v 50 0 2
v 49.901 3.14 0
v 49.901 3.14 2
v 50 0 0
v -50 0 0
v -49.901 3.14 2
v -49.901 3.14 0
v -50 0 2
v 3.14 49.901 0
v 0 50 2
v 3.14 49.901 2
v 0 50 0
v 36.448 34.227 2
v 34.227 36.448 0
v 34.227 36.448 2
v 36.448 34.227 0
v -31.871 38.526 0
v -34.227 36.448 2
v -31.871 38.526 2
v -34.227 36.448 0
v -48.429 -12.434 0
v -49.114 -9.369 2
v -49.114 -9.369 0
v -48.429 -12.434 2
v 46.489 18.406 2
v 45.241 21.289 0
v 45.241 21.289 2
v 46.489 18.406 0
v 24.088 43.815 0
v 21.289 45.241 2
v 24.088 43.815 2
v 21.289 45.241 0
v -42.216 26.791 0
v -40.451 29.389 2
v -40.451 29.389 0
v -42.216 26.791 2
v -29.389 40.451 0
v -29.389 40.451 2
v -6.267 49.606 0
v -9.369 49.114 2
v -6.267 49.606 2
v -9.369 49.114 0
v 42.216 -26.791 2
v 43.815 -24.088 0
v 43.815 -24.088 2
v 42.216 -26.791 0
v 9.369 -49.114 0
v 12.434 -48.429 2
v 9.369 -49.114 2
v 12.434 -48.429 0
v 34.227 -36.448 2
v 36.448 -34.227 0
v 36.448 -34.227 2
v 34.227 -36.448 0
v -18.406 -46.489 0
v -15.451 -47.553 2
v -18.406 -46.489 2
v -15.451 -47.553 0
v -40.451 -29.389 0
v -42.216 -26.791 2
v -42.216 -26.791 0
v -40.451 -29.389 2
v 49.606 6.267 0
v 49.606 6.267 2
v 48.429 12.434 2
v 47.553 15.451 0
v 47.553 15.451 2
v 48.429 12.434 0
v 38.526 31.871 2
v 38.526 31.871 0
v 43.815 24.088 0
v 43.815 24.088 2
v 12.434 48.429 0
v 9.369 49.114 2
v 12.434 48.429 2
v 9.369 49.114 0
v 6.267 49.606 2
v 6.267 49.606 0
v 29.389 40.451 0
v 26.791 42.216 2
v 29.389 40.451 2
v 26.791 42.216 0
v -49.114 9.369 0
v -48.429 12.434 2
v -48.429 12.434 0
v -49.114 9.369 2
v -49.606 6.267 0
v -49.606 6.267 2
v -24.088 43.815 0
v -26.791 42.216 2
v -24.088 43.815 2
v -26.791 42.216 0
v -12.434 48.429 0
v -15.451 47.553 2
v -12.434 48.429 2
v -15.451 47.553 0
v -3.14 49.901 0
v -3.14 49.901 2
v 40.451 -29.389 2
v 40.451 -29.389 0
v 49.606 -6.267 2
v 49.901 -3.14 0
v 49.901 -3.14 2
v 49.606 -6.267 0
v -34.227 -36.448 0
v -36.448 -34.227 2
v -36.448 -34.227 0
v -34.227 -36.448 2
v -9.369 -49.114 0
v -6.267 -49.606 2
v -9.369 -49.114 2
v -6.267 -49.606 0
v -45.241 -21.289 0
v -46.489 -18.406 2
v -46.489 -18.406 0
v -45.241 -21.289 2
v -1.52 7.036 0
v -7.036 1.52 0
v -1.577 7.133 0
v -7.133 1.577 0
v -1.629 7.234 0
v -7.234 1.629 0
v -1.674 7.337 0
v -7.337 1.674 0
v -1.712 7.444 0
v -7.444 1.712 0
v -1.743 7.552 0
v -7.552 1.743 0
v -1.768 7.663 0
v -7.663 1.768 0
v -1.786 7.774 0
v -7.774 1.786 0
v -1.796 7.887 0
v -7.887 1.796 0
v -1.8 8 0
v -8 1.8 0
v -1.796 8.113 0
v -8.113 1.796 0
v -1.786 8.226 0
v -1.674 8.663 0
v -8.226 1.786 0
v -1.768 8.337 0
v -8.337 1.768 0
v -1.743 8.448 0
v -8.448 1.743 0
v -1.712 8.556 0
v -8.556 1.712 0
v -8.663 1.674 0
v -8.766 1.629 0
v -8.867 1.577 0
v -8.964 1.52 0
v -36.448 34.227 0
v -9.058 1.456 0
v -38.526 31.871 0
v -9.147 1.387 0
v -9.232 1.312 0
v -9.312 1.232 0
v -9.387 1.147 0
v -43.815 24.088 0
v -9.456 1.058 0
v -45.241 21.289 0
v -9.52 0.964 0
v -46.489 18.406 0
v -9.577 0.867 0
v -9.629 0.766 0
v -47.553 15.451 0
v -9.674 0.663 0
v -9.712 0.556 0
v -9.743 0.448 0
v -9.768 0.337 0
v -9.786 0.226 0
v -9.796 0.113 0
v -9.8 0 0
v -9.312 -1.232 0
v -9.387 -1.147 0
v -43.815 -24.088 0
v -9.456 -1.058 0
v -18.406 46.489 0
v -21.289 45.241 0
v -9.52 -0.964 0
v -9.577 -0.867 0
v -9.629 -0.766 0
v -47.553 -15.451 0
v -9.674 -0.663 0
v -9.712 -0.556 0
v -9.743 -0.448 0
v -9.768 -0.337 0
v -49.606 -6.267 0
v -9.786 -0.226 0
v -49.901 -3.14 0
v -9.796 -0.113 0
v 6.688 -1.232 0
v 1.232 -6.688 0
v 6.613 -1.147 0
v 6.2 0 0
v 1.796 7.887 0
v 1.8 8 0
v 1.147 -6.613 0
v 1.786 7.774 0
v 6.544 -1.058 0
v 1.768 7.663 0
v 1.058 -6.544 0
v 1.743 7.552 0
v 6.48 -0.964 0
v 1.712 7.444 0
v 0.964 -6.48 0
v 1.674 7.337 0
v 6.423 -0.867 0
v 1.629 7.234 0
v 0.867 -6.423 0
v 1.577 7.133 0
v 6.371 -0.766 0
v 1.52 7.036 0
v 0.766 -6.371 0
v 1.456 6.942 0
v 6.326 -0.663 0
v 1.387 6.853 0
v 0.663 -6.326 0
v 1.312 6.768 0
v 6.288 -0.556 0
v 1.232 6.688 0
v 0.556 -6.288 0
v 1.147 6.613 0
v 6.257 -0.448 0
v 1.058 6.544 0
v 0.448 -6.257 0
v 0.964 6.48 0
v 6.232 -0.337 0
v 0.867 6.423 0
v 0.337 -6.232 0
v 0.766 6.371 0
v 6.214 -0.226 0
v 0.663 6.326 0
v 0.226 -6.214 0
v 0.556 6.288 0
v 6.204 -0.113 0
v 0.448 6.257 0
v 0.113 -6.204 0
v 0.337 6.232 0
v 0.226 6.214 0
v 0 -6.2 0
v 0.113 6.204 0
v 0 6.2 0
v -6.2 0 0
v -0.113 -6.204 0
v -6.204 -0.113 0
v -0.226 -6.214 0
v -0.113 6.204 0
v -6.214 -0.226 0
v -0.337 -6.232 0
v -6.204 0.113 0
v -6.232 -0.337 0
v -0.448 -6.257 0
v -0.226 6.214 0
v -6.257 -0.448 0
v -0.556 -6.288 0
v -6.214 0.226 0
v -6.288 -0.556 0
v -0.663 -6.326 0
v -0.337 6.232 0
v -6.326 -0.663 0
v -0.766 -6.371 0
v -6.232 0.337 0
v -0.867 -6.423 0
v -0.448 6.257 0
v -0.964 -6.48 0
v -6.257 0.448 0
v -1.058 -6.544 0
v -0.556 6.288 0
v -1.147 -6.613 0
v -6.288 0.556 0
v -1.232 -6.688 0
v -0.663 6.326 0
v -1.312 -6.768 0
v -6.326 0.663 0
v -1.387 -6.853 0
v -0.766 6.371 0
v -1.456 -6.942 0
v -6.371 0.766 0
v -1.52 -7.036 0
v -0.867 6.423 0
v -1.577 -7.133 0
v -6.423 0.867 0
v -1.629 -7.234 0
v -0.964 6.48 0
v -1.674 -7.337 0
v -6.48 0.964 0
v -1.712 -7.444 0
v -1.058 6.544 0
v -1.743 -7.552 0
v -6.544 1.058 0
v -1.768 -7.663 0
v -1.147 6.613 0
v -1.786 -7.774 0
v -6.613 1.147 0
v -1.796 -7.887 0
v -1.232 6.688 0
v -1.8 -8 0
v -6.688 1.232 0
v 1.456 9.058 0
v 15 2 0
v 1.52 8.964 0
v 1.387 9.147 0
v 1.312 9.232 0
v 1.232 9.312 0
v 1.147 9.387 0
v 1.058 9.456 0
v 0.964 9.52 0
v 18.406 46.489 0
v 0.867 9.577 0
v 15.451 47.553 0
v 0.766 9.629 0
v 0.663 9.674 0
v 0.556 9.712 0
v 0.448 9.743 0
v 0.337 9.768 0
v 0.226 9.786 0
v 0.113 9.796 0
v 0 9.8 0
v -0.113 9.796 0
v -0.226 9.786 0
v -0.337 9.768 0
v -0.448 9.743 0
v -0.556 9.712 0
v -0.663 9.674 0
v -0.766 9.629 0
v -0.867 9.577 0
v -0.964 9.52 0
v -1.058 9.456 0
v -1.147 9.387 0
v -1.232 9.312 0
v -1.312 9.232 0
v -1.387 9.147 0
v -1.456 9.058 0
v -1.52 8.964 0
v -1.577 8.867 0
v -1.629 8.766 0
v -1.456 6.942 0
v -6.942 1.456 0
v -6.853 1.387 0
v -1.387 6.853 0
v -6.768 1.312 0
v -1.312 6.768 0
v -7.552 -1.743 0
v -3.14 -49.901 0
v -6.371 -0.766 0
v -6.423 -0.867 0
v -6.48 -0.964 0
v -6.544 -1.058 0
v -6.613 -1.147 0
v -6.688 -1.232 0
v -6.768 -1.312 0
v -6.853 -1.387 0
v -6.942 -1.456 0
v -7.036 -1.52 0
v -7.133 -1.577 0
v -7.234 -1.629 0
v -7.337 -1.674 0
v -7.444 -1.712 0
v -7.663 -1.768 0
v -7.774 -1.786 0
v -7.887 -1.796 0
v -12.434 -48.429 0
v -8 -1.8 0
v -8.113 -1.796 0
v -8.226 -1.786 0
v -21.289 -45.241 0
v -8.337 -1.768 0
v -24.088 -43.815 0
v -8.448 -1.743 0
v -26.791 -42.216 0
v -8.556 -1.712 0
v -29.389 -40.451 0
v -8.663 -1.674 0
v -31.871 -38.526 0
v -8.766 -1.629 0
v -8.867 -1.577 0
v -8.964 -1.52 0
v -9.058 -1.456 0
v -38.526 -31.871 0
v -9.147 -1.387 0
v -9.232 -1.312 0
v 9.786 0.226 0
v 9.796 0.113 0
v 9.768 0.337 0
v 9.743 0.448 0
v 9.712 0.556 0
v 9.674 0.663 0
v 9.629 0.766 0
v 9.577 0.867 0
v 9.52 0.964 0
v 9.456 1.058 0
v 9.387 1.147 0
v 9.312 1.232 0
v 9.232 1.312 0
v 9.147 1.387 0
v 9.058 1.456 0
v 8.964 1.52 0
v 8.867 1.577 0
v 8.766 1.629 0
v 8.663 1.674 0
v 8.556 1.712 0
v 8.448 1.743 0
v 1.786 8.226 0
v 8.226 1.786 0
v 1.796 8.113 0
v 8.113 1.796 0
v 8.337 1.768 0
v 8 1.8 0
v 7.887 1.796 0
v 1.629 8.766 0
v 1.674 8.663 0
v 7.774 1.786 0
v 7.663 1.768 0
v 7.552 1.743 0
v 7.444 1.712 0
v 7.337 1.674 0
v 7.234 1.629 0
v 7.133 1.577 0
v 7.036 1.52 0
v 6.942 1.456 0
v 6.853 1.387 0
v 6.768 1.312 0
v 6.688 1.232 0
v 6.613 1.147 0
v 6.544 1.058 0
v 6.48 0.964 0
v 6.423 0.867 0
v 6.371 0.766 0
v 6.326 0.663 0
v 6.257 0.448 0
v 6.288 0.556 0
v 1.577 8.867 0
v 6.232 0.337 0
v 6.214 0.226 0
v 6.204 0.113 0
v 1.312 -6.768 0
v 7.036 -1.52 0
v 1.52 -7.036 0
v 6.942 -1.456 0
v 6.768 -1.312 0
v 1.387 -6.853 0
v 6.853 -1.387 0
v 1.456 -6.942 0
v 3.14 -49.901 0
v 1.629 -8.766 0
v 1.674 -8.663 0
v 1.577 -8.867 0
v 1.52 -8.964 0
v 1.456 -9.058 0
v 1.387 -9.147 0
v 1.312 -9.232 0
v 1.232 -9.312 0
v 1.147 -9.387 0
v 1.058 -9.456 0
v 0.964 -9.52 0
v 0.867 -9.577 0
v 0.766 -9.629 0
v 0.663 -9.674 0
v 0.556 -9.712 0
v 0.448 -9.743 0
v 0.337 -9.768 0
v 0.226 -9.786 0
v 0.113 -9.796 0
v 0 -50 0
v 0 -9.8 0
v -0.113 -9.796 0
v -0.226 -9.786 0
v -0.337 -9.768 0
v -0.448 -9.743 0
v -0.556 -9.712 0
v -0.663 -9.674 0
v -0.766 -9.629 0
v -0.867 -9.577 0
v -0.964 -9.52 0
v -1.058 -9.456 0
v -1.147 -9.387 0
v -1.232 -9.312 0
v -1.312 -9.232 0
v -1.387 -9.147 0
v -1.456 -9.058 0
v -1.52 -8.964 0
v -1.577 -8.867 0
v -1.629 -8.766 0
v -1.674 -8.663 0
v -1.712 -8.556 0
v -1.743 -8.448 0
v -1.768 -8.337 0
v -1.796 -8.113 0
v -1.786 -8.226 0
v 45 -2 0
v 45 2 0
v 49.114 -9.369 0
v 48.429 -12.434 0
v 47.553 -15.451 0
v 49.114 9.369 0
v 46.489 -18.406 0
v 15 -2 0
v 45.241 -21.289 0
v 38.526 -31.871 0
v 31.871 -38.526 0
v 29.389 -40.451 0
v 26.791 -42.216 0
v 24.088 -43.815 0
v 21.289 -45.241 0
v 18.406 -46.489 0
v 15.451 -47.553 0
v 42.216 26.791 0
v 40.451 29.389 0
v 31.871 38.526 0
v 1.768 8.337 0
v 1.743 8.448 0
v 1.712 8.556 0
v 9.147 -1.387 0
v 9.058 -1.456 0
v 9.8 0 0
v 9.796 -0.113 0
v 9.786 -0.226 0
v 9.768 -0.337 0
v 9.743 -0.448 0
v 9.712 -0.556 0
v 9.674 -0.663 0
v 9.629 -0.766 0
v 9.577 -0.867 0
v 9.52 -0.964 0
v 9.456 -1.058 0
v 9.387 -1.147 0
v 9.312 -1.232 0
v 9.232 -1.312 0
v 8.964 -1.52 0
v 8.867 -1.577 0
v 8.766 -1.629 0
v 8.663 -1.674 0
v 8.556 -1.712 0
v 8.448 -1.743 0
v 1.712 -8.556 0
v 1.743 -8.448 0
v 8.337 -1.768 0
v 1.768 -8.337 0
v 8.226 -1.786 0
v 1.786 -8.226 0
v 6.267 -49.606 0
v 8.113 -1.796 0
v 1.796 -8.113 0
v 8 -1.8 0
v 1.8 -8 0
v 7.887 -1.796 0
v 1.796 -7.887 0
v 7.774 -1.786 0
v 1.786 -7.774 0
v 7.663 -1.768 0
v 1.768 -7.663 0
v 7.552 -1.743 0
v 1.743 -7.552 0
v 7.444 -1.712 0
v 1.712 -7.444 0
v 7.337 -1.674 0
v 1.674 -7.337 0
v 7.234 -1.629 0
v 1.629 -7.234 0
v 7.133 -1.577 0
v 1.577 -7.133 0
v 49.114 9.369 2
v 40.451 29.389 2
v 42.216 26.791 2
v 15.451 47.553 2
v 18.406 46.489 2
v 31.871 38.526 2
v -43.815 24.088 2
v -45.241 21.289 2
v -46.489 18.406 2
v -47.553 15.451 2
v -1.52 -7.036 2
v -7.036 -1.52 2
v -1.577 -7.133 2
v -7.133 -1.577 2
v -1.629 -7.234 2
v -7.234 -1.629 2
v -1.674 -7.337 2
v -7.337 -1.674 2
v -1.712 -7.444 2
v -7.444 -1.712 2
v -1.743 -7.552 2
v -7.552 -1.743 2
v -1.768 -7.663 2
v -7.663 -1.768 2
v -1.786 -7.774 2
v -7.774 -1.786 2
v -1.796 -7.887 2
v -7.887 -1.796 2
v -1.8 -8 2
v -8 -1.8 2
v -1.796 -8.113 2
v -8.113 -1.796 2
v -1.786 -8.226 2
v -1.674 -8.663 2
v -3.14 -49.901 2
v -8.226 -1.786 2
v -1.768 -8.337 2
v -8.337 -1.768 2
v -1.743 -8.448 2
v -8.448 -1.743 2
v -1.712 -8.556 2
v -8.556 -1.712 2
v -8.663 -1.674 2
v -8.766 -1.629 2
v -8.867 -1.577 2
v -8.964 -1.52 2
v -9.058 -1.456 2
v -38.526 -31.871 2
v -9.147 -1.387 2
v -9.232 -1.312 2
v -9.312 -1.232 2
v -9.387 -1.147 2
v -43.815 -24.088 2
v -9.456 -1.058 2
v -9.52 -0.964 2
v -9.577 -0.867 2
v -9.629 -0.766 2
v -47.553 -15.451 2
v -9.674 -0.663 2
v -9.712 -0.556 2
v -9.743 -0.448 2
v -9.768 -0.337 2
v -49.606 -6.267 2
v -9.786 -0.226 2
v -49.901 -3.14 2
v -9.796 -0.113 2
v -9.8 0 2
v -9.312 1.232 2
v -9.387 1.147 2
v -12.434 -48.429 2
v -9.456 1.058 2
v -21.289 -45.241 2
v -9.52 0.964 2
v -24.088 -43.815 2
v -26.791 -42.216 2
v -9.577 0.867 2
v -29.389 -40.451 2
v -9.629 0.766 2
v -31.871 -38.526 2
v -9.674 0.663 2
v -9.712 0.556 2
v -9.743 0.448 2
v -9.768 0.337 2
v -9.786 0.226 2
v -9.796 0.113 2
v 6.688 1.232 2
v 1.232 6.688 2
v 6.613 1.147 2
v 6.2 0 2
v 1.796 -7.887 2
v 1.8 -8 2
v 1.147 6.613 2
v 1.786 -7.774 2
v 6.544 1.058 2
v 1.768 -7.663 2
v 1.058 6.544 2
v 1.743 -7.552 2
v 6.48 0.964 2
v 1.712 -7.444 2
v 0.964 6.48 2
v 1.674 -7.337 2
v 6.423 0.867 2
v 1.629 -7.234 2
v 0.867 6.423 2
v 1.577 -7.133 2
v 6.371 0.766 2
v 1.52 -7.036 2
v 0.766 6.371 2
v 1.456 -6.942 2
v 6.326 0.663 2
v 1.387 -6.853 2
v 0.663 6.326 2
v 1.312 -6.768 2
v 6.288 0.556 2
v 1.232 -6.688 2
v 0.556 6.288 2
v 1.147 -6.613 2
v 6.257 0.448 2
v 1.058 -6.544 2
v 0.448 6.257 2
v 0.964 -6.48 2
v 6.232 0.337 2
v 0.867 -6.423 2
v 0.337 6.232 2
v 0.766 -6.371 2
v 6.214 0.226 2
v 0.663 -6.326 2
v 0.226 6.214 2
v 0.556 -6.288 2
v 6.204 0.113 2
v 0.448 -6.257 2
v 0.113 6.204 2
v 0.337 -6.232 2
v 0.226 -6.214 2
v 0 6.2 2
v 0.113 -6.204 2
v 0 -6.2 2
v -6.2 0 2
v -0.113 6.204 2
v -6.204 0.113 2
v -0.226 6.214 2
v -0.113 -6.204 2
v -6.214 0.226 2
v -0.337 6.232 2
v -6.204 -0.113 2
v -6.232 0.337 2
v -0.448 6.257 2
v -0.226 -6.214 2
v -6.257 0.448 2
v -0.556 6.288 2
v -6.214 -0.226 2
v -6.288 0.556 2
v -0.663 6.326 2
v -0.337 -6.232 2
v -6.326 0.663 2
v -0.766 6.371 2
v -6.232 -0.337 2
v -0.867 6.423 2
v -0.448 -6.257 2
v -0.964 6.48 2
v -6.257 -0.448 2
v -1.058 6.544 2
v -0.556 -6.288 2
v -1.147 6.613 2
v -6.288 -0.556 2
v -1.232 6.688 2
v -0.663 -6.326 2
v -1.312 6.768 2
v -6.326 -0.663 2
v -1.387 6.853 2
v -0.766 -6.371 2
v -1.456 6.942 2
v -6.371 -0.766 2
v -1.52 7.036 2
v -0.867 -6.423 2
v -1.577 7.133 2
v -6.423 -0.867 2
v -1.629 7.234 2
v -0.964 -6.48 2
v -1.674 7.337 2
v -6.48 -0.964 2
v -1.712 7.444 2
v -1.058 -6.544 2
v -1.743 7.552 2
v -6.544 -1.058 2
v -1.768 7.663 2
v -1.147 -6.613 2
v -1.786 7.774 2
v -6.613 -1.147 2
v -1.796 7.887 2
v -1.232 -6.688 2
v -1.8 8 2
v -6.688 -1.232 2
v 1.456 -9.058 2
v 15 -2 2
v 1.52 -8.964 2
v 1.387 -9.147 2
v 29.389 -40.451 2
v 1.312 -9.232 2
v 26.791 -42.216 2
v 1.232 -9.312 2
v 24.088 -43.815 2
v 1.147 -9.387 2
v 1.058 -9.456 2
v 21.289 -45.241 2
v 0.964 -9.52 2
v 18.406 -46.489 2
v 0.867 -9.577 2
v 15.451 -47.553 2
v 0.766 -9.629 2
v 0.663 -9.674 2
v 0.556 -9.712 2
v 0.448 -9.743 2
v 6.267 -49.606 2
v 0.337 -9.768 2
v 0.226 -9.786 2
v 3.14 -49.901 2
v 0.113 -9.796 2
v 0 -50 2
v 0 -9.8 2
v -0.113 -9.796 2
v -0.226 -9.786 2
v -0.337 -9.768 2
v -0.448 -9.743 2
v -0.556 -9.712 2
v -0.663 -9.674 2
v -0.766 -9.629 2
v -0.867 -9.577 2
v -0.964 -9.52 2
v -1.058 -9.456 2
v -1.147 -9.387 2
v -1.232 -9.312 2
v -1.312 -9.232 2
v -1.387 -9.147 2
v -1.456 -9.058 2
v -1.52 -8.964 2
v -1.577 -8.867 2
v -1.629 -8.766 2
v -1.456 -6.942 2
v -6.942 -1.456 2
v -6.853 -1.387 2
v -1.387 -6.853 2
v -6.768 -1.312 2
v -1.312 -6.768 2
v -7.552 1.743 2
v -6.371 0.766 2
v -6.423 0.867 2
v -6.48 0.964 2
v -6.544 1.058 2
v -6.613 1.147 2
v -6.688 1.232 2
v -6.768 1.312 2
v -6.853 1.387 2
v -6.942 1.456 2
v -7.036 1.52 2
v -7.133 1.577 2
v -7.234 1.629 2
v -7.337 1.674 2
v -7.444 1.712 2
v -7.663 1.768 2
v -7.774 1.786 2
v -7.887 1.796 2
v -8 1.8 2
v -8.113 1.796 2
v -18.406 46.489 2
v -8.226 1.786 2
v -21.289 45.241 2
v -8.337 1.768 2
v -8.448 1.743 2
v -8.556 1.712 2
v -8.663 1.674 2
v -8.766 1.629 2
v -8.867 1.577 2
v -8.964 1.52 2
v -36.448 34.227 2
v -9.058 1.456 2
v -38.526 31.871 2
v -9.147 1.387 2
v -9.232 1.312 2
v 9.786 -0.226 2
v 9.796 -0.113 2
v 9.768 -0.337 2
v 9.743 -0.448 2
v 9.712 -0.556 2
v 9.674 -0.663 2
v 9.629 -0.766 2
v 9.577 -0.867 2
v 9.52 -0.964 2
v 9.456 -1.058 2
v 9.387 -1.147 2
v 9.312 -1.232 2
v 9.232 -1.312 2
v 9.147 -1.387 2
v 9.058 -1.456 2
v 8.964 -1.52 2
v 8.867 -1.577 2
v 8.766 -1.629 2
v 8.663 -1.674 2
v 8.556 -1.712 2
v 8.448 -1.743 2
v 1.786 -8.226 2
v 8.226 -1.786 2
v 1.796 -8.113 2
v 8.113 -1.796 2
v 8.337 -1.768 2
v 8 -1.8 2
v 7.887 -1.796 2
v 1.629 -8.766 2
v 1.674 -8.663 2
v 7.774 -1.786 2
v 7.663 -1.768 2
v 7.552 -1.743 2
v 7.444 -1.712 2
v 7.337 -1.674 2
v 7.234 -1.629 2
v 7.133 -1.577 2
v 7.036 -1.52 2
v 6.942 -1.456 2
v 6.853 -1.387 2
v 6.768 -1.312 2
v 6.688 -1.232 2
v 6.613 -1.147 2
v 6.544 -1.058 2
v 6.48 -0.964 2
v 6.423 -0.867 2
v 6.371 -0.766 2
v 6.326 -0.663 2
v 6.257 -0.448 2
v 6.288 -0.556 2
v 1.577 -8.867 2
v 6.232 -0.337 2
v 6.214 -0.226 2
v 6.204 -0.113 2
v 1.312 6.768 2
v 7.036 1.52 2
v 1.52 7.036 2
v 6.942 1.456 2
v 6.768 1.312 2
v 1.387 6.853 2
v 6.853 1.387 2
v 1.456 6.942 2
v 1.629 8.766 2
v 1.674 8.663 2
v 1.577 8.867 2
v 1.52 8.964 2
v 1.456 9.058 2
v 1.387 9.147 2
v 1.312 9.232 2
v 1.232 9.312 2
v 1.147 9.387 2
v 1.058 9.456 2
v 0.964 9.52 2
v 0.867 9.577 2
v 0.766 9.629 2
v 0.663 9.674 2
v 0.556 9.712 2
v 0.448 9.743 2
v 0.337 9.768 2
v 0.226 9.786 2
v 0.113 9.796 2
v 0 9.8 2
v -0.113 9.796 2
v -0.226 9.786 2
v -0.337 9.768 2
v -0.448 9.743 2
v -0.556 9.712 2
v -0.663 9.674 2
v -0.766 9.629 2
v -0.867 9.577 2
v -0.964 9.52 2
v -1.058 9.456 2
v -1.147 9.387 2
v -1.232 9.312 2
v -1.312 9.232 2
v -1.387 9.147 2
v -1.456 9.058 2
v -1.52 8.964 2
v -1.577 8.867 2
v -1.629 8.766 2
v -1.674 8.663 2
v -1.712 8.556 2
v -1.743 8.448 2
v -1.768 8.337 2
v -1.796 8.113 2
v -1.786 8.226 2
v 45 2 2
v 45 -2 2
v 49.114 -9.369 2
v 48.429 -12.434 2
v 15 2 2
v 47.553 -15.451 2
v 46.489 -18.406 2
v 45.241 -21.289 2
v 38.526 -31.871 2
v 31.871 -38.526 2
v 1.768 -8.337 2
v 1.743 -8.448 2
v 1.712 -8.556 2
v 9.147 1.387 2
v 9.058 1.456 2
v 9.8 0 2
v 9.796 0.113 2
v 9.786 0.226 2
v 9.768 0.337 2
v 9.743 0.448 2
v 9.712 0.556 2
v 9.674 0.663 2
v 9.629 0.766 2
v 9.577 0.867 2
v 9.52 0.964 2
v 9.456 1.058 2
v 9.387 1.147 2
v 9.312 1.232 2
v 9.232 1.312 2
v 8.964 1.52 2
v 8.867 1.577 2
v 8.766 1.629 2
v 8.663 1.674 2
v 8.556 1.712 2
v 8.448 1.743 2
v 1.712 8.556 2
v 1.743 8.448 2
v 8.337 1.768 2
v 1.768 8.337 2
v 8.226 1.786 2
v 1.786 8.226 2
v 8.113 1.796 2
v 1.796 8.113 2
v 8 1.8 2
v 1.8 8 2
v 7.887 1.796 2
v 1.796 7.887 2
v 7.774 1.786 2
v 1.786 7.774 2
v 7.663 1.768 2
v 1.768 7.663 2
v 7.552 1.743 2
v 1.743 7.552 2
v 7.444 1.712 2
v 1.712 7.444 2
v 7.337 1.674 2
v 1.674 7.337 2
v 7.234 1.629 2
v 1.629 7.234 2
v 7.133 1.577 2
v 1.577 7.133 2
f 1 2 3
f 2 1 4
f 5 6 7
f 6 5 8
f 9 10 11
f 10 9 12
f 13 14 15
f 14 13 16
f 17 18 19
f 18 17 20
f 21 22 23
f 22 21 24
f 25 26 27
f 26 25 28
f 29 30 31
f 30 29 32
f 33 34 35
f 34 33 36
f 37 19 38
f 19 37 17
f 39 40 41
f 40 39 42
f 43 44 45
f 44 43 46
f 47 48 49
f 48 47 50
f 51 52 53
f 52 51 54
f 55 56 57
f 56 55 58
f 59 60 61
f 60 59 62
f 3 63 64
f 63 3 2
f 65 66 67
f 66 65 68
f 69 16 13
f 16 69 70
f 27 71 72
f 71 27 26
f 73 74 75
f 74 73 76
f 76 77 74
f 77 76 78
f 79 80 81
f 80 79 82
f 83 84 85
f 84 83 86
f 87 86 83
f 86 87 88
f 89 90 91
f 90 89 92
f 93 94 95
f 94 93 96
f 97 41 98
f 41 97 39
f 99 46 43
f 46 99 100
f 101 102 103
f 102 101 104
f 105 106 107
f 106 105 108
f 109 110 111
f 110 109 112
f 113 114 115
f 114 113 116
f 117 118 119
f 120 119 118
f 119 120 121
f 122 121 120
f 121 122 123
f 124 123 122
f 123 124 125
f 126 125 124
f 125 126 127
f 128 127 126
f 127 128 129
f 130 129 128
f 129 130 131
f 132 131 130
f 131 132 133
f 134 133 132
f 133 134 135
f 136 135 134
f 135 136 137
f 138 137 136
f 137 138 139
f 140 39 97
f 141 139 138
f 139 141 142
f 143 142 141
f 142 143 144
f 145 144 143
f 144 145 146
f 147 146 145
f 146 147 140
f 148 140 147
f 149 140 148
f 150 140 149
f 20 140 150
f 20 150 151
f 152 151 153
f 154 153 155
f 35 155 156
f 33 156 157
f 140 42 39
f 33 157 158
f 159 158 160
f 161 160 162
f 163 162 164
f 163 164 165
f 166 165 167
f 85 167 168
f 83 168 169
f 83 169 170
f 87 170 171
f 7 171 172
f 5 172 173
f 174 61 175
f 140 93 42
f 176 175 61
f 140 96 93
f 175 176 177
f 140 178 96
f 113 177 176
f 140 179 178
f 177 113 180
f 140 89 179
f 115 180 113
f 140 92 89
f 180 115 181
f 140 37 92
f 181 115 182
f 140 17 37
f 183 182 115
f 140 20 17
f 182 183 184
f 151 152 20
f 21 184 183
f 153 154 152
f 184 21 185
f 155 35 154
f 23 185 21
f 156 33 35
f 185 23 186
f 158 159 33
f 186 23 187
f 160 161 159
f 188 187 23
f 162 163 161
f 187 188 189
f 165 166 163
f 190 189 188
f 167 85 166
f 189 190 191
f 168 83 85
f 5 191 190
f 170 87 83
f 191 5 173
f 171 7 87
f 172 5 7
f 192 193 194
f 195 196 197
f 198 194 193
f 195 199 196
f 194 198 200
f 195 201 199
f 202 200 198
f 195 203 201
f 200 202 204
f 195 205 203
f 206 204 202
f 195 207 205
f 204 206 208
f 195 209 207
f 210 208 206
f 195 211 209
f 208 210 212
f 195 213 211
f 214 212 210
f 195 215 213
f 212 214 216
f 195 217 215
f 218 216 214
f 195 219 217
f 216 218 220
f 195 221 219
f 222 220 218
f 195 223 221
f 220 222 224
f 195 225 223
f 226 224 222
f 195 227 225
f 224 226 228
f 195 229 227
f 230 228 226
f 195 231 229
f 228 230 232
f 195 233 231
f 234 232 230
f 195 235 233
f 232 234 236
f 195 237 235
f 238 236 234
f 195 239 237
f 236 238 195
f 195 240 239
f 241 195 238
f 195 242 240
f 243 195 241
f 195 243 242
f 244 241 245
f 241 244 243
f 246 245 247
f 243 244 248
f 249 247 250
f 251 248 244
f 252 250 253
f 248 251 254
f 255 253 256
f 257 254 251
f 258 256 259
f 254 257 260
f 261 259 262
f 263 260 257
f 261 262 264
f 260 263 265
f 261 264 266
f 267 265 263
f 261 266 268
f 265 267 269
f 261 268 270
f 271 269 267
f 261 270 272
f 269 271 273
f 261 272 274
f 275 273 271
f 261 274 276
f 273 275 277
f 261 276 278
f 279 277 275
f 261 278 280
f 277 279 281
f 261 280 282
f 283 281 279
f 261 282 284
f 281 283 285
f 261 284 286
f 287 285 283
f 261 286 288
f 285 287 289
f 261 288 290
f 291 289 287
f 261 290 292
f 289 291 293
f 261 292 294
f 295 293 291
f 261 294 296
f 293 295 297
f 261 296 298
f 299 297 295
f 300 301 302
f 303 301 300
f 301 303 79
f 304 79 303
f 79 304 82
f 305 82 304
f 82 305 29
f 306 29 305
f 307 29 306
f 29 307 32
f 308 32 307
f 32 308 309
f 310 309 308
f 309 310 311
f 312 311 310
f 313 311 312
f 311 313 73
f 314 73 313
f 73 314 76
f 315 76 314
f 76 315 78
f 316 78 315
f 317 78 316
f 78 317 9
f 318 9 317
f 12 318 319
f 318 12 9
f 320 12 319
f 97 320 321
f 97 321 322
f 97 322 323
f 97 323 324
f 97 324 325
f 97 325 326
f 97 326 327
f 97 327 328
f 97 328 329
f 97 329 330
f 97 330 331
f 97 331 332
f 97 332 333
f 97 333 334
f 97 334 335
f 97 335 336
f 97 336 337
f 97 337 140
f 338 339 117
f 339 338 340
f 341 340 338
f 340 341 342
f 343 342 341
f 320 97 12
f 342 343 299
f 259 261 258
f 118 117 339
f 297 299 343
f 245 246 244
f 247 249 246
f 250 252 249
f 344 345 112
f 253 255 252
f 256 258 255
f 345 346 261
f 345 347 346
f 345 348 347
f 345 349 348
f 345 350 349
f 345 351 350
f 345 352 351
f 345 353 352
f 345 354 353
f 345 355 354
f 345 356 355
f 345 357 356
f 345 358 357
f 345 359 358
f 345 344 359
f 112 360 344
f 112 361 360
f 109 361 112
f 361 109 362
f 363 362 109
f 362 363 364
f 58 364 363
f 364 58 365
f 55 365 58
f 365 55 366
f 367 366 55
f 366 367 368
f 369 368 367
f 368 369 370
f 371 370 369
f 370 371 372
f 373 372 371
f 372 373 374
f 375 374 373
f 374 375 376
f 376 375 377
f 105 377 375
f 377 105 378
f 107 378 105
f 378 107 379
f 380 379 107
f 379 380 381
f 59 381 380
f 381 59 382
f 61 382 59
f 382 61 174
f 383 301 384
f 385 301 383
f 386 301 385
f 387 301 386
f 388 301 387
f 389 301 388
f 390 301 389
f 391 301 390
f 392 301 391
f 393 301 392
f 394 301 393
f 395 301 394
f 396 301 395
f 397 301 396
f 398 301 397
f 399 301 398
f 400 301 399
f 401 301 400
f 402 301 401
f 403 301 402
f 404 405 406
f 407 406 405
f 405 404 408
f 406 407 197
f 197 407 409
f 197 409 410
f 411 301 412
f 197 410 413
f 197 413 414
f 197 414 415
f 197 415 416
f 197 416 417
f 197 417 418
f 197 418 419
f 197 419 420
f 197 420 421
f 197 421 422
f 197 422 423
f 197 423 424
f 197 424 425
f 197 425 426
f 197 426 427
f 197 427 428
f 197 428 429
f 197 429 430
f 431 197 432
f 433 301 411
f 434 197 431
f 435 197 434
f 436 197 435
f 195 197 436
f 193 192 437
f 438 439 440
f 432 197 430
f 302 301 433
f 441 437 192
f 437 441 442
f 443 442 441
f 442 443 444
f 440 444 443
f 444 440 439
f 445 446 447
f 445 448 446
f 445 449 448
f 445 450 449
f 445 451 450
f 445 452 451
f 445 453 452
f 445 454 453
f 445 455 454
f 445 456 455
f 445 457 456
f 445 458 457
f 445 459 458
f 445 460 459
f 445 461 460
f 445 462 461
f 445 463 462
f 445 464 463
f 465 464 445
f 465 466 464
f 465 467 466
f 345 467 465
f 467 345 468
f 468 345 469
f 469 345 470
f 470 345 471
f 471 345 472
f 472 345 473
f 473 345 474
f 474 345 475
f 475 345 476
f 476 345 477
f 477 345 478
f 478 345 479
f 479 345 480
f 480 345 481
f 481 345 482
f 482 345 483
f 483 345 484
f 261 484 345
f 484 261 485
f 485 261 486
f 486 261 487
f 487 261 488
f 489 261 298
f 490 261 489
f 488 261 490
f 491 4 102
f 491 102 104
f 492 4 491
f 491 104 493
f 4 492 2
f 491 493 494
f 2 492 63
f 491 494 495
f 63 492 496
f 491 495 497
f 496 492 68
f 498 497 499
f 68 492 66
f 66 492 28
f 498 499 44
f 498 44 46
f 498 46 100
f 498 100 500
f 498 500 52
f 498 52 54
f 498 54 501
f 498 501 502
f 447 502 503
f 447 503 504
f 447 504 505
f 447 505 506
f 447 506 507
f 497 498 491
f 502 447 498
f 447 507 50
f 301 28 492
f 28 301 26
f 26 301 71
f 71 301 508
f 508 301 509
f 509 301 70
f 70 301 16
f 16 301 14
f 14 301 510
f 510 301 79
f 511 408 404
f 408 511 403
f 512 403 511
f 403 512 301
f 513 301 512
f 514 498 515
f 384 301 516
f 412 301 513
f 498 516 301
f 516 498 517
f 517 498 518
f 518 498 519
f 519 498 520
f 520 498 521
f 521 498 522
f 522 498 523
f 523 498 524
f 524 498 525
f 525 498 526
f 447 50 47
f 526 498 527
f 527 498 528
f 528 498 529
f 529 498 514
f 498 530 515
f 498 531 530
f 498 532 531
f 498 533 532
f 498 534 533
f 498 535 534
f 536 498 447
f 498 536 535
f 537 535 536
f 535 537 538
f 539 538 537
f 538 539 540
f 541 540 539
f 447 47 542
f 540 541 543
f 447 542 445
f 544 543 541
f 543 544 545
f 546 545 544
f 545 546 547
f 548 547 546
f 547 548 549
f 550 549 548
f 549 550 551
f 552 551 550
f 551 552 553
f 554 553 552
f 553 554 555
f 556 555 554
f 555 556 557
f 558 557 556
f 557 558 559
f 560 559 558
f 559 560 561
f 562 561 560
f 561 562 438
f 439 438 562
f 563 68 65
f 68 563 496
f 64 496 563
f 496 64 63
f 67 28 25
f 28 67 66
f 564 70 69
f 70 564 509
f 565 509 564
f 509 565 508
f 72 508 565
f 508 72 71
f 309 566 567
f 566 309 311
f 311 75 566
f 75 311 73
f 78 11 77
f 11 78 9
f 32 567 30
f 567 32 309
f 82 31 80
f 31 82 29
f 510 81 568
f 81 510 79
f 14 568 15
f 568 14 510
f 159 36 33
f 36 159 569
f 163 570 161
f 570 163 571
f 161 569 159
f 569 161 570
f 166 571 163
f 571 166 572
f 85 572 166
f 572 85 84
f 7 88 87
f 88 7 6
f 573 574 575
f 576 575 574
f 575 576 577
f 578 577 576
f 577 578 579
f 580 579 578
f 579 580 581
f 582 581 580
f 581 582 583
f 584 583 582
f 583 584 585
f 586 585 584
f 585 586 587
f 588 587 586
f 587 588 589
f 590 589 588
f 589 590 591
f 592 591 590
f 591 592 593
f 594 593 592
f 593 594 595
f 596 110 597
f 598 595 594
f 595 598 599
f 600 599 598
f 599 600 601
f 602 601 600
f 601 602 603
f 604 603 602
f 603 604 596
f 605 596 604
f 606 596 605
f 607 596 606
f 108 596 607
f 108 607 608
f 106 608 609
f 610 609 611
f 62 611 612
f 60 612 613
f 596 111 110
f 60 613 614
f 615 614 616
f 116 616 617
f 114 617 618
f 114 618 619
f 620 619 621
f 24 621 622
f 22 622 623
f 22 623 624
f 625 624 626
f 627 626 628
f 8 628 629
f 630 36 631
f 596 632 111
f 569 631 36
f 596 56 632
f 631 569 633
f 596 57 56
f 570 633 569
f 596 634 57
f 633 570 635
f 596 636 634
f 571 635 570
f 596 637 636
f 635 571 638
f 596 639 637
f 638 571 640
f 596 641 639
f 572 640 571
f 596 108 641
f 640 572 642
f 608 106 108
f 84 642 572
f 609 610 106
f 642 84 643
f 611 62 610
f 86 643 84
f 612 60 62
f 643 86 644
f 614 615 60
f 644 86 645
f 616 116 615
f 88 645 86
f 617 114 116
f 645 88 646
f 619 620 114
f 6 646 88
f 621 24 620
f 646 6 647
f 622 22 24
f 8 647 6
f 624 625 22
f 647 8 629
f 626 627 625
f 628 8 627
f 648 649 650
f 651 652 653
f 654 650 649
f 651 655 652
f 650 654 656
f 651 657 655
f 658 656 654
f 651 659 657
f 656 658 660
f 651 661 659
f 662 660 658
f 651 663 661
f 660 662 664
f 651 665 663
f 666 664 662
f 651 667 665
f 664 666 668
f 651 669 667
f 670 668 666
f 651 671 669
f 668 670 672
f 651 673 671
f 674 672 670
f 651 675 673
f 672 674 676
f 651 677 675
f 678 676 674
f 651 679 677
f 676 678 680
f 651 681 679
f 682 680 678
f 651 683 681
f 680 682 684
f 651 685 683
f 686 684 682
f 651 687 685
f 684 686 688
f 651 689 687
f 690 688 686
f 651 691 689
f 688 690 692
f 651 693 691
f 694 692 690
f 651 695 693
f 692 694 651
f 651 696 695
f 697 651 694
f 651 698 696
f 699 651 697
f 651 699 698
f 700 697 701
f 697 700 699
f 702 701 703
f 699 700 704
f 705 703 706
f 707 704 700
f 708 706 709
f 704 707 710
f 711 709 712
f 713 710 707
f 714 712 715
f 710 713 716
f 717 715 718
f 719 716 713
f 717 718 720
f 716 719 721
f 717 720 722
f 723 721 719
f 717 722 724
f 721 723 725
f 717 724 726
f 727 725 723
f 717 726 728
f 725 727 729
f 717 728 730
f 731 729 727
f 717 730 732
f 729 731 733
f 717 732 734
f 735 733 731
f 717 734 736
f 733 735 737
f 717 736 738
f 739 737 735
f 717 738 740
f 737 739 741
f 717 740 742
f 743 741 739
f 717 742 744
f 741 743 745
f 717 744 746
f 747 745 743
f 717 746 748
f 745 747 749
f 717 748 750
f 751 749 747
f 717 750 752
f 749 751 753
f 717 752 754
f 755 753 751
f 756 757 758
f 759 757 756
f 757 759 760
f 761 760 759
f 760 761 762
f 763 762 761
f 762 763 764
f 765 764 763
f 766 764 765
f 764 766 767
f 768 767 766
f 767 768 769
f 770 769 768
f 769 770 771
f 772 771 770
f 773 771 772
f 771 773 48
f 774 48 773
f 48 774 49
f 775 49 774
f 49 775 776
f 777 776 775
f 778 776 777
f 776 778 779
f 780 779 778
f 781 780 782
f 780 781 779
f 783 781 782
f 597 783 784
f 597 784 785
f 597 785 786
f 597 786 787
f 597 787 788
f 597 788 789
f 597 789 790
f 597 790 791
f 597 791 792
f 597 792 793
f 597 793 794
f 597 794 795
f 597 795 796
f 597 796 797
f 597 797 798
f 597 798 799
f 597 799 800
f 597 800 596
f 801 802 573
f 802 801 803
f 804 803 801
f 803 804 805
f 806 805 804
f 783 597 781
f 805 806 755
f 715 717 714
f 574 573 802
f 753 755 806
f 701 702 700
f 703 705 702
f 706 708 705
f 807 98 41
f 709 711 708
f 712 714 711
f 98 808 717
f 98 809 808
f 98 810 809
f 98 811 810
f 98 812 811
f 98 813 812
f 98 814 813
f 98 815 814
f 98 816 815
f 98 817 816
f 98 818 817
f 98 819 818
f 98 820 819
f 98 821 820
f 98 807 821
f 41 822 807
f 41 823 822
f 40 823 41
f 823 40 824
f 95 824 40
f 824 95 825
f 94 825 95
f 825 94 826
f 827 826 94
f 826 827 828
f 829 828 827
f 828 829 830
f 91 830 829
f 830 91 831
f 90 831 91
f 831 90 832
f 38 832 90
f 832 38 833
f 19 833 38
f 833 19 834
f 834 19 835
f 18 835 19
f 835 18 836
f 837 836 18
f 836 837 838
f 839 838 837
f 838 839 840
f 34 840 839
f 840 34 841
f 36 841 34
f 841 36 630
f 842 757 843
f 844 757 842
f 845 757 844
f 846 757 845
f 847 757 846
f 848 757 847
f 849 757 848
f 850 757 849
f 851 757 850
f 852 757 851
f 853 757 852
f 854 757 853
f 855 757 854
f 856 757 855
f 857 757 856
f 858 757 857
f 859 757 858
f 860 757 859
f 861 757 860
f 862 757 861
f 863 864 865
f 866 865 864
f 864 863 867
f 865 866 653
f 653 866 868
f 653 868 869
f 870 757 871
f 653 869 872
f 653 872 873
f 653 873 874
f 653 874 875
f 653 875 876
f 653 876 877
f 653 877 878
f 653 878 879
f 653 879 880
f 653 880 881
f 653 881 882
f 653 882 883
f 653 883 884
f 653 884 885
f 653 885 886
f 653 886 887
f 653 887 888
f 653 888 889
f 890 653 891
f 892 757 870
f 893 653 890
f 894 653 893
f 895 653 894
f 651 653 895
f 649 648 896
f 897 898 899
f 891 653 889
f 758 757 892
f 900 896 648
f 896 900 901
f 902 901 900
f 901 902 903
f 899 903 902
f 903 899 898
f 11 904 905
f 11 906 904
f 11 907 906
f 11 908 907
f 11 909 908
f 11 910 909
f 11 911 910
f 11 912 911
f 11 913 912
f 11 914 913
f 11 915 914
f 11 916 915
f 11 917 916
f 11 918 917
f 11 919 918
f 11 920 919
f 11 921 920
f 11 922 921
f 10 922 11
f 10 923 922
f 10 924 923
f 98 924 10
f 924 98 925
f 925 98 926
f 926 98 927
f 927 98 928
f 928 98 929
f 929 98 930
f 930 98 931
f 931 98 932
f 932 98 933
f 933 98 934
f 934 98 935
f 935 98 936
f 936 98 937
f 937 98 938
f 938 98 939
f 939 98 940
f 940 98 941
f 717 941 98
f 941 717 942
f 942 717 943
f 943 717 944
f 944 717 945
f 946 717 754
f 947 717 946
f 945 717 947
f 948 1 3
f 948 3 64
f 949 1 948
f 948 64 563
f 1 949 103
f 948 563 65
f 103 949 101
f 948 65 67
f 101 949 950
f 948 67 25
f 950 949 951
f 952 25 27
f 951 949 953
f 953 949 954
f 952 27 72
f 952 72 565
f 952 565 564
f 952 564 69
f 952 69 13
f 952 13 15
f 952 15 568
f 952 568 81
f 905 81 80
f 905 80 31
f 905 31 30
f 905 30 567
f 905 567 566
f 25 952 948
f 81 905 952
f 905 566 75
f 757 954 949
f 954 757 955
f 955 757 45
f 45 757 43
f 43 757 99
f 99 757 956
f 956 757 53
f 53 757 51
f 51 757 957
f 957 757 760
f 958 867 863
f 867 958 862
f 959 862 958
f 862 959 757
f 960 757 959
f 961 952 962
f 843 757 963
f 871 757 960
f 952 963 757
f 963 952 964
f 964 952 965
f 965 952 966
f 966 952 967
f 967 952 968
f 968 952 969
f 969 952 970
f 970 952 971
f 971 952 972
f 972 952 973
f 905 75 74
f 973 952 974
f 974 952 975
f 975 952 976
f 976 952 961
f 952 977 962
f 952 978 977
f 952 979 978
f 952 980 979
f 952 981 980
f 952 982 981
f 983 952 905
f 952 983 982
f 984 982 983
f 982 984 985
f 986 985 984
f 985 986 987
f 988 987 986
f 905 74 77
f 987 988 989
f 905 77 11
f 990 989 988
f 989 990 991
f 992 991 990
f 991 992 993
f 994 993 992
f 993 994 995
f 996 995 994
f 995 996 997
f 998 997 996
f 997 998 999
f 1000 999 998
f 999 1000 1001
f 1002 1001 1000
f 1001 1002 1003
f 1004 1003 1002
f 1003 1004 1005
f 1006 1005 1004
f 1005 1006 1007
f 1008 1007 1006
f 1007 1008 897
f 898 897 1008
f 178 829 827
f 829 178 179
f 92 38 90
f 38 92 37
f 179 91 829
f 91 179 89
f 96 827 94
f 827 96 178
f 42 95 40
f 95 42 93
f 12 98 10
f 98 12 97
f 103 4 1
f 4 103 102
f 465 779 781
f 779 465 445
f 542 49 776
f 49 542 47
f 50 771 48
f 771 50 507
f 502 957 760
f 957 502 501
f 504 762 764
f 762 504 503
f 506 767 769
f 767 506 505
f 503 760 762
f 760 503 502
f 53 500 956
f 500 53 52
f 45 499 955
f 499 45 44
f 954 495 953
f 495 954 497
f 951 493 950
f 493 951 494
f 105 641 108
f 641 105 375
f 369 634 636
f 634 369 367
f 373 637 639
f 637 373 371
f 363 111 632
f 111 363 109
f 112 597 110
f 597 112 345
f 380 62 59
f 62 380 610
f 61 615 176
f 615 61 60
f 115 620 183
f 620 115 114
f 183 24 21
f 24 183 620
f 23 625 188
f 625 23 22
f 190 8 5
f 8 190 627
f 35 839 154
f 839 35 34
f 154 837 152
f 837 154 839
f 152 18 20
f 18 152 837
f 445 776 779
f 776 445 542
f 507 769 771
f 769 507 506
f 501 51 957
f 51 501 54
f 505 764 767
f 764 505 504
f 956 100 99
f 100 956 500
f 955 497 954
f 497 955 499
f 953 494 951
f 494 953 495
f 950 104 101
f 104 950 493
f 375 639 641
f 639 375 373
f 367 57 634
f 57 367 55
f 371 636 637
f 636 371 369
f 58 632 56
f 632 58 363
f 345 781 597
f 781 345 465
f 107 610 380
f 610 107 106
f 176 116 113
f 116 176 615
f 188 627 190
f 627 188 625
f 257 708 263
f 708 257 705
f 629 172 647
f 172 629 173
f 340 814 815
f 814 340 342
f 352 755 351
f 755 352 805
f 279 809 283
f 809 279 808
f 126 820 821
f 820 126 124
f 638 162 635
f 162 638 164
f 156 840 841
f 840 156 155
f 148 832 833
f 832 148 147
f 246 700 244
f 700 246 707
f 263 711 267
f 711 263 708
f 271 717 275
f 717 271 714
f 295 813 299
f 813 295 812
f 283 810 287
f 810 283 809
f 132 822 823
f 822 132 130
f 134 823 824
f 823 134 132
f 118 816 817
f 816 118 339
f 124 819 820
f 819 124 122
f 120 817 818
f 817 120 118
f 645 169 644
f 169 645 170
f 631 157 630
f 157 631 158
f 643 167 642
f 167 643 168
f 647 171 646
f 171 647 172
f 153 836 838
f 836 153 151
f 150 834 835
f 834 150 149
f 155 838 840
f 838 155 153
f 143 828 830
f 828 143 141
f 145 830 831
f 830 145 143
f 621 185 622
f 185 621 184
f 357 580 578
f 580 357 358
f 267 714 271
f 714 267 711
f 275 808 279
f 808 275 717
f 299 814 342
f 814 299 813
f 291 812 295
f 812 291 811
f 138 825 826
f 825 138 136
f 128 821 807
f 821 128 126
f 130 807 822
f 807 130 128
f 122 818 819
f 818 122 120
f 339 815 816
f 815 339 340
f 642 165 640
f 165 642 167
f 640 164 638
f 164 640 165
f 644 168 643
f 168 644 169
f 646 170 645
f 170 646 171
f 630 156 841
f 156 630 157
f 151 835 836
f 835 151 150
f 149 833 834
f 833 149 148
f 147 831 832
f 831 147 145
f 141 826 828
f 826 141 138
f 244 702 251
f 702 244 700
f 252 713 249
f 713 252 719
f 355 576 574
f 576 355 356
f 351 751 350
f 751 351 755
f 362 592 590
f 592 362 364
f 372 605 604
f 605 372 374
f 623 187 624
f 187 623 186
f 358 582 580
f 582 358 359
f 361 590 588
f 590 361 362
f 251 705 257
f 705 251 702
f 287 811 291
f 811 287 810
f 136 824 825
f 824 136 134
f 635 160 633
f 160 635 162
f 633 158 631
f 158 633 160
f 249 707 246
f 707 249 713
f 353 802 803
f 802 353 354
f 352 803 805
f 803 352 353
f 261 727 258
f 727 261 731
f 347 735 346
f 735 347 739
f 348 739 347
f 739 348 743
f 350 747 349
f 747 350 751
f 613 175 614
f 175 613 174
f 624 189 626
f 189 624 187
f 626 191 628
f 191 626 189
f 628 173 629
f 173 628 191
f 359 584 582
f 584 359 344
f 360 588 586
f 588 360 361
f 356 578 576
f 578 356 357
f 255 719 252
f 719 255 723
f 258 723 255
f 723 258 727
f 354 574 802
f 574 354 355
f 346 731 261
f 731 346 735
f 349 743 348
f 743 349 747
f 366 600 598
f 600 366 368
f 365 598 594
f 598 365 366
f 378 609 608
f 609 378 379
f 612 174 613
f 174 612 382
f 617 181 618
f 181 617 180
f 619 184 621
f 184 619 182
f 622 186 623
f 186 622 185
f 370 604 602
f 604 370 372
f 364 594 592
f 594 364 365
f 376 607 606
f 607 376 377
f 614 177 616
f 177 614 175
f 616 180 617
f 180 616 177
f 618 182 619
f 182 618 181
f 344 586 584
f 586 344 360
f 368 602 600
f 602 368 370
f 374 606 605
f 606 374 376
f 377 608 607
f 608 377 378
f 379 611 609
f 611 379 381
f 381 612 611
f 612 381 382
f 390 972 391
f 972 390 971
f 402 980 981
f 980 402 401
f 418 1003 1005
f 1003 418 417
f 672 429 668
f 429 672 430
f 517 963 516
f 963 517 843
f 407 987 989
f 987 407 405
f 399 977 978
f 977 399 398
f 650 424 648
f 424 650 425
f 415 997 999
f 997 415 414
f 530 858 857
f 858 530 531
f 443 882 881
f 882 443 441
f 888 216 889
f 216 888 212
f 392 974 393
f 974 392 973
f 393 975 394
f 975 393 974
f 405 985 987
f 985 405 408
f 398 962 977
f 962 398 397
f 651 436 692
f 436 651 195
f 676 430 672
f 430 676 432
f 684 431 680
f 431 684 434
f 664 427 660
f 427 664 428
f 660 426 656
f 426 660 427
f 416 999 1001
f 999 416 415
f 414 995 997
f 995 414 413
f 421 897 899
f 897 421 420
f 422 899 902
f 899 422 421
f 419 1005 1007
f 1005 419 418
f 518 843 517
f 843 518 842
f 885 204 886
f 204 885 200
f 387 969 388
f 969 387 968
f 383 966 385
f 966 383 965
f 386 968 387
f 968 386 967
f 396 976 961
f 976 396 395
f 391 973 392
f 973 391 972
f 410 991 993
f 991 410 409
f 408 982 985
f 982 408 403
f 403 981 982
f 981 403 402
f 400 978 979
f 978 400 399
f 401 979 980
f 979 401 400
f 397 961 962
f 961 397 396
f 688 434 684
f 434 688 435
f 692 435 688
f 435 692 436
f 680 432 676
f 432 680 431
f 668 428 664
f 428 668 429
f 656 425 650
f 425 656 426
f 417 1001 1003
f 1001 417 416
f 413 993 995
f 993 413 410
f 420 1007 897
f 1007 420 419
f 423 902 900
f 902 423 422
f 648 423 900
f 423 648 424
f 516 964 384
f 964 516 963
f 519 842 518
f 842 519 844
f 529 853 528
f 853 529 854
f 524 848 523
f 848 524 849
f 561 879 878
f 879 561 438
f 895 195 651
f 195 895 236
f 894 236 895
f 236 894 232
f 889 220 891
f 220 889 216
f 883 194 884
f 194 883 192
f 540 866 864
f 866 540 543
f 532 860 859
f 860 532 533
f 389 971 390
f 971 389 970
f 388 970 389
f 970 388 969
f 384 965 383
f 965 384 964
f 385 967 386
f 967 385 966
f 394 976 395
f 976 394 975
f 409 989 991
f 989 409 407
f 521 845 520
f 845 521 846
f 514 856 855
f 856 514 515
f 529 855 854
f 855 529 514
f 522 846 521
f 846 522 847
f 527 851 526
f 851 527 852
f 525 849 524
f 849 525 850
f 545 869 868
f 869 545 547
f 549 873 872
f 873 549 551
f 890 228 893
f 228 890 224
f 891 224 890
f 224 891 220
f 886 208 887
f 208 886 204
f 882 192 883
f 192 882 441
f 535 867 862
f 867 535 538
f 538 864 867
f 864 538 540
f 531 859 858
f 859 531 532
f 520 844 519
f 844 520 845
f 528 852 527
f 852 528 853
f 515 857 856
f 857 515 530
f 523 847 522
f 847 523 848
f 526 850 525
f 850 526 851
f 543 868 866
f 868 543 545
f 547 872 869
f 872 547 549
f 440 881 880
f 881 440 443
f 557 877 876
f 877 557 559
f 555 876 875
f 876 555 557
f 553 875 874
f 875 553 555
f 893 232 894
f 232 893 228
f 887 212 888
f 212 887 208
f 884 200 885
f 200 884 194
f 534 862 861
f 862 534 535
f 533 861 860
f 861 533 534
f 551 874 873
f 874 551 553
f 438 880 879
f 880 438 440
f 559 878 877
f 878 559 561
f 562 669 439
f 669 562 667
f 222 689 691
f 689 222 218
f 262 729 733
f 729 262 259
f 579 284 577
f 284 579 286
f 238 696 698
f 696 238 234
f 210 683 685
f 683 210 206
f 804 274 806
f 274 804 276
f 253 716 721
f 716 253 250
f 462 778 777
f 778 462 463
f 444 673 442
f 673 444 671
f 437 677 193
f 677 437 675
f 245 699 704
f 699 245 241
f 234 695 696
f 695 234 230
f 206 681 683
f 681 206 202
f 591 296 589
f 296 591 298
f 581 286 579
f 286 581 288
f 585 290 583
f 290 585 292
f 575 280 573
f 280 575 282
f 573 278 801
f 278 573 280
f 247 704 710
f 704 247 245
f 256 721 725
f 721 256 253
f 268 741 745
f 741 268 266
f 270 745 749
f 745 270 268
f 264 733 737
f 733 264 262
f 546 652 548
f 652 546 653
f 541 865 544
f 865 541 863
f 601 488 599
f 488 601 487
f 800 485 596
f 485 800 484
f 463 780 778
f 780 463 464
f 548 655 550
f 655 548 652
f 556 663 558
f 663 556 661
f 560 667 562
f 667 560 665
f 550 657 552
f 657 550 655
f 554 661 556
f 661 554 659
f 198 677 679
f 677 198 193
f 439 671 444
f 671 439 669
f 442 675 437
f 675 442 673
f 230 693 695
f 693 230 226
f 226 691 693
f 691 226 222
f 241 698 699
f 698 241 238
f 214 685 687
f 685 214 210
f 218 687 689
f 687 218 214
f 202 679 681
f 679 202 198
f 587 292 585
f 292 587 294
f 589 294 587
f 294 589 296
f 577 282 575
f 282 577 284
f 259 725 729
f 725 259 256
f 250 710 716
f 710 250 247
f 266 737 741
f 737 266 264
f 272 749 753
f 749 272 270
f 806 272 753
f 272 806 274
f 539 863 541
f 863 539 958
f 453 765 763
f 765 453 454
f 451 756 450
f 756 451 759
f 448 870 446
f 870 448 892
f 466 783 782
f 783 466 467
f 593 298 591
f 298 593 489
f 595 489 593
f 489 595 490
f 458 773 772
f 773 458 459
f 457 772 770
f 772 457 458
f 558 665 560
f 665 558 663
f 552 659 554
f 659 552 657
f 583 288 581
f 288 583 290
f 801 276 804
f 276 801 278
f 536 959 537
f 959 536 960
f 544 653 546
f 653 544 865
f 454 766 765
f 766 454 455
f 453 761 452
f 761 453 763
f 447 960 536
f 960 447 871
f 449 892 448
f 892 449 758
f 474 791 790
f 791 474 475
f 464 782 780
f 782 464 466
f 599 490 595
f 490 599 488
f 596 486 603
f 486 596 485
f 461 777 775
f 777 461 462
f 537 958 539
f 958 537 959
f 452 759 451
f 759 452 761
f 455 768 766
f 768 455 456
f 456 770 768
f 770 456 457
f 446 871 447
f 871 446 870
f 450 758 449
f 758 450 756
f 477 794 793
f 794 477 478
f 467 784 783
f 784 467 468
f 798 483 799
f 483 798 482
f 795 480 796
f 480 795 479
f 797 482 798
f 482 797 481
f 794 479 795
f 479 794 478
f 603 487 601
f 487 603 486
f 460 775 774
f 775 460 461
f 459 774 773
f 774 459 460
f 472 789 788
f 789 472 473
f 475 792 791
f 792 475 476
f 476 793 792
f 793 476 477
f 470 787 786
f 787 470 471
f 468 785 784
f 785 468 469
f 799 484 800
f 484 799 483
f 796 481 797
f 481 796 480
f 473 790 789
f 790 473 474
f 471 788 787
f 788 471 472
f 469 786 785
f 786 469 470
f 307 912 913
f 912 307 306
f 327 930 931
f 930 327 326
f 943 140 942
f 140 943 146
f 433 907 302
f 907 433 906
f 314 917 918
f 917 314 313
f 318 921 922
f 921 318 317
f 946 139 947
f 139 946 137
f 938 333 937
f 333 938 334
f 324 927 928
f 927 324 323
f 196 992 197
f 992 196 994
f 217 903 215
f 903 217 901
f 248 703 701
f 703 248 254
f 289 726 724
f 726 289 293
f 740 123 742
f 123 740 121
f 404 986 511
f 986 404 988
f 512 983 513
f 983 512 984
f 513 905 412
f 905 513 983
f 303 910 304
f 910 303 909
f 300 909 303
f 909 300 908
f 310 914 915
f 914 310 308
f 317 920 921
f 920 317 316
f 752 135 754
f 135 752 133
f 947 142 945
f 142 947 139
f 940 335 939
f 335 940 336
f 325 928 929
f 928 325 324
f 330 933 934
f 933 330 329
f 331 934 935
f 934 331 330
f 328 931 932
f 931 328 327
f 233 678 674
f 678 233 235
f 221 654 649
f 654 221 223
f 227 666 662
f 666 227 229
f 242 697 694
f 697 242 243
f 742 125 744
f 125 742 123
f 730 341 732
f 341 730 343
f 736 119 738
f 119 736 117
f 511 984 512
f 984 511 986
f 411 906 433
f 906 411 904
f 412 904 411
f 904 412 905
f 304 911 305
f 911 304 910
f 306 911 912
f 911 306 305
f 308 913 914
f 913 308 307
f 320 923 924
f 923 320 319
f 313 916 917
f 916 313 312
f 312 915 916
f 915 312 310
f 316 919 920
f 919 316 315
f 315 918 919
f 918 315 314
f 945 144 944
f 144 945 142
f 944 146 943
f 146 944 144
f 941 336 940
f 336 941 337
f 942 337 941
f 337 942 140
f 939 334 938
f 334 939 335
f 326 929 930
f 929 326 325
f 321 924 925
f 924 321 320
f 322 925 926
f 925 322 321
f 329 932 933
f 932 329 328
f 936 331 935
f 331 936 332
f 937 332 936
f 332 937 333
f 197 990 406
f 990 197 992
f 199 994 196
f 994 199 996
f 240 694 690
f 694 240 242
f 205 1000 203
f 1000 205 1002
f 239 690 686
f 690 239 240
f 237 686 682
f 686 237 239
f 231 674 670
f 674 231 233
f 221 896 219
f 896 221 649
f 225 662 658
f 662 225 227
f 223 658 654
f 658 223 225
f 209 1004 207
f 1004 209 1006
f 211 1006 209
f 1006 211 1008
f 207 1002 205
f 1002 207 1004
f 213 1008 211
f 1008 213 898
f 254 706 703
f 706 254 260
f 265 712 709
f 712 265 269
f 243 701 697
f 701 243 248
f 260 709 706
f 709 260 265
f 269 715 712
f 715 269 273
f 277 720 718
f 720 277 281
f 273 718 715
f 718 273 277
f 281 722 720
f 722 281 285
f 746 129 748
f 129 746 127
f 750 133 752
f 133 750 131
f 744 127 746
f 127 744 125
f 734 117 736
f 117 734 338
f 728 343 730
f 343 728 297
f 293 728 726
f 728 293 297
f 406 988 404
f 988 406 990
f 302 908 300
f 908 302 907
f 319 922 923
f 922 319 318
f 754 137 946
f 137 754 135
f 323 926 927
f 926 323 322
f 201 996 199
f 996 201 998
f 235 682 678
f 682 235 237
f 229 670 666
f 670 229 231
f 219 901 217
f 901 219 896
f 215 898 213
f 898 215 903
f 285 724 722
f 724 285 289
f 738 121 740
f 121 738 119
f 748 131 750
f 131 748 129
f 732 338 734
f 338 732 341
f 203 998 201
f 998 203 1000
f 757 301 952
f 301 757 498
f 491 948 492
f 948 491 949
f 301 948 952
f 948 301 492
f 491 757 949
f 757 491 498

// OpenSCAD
$fn=100;
evis=16;

D=100;
e=2;



difference()
{
    cylinder(h=e,d=D);
    translate([-evis/2,0,-1]) cylinder(d=3.6,h=10);
    translate([+evis/2,0,-1]) cylinder(d=3.6,h=10);
    translate([0,-evis/2,-1]) cylinder(d=3.6,h=10);
    translate([0,+evis/2,-1]) cylinder(d=3.6,h=10);
     
    translate([15,-2,-1]) cube([30,4,10]);
    // translate([D/2-3,0,-1]) cylinder(h=10,d=5);
}
